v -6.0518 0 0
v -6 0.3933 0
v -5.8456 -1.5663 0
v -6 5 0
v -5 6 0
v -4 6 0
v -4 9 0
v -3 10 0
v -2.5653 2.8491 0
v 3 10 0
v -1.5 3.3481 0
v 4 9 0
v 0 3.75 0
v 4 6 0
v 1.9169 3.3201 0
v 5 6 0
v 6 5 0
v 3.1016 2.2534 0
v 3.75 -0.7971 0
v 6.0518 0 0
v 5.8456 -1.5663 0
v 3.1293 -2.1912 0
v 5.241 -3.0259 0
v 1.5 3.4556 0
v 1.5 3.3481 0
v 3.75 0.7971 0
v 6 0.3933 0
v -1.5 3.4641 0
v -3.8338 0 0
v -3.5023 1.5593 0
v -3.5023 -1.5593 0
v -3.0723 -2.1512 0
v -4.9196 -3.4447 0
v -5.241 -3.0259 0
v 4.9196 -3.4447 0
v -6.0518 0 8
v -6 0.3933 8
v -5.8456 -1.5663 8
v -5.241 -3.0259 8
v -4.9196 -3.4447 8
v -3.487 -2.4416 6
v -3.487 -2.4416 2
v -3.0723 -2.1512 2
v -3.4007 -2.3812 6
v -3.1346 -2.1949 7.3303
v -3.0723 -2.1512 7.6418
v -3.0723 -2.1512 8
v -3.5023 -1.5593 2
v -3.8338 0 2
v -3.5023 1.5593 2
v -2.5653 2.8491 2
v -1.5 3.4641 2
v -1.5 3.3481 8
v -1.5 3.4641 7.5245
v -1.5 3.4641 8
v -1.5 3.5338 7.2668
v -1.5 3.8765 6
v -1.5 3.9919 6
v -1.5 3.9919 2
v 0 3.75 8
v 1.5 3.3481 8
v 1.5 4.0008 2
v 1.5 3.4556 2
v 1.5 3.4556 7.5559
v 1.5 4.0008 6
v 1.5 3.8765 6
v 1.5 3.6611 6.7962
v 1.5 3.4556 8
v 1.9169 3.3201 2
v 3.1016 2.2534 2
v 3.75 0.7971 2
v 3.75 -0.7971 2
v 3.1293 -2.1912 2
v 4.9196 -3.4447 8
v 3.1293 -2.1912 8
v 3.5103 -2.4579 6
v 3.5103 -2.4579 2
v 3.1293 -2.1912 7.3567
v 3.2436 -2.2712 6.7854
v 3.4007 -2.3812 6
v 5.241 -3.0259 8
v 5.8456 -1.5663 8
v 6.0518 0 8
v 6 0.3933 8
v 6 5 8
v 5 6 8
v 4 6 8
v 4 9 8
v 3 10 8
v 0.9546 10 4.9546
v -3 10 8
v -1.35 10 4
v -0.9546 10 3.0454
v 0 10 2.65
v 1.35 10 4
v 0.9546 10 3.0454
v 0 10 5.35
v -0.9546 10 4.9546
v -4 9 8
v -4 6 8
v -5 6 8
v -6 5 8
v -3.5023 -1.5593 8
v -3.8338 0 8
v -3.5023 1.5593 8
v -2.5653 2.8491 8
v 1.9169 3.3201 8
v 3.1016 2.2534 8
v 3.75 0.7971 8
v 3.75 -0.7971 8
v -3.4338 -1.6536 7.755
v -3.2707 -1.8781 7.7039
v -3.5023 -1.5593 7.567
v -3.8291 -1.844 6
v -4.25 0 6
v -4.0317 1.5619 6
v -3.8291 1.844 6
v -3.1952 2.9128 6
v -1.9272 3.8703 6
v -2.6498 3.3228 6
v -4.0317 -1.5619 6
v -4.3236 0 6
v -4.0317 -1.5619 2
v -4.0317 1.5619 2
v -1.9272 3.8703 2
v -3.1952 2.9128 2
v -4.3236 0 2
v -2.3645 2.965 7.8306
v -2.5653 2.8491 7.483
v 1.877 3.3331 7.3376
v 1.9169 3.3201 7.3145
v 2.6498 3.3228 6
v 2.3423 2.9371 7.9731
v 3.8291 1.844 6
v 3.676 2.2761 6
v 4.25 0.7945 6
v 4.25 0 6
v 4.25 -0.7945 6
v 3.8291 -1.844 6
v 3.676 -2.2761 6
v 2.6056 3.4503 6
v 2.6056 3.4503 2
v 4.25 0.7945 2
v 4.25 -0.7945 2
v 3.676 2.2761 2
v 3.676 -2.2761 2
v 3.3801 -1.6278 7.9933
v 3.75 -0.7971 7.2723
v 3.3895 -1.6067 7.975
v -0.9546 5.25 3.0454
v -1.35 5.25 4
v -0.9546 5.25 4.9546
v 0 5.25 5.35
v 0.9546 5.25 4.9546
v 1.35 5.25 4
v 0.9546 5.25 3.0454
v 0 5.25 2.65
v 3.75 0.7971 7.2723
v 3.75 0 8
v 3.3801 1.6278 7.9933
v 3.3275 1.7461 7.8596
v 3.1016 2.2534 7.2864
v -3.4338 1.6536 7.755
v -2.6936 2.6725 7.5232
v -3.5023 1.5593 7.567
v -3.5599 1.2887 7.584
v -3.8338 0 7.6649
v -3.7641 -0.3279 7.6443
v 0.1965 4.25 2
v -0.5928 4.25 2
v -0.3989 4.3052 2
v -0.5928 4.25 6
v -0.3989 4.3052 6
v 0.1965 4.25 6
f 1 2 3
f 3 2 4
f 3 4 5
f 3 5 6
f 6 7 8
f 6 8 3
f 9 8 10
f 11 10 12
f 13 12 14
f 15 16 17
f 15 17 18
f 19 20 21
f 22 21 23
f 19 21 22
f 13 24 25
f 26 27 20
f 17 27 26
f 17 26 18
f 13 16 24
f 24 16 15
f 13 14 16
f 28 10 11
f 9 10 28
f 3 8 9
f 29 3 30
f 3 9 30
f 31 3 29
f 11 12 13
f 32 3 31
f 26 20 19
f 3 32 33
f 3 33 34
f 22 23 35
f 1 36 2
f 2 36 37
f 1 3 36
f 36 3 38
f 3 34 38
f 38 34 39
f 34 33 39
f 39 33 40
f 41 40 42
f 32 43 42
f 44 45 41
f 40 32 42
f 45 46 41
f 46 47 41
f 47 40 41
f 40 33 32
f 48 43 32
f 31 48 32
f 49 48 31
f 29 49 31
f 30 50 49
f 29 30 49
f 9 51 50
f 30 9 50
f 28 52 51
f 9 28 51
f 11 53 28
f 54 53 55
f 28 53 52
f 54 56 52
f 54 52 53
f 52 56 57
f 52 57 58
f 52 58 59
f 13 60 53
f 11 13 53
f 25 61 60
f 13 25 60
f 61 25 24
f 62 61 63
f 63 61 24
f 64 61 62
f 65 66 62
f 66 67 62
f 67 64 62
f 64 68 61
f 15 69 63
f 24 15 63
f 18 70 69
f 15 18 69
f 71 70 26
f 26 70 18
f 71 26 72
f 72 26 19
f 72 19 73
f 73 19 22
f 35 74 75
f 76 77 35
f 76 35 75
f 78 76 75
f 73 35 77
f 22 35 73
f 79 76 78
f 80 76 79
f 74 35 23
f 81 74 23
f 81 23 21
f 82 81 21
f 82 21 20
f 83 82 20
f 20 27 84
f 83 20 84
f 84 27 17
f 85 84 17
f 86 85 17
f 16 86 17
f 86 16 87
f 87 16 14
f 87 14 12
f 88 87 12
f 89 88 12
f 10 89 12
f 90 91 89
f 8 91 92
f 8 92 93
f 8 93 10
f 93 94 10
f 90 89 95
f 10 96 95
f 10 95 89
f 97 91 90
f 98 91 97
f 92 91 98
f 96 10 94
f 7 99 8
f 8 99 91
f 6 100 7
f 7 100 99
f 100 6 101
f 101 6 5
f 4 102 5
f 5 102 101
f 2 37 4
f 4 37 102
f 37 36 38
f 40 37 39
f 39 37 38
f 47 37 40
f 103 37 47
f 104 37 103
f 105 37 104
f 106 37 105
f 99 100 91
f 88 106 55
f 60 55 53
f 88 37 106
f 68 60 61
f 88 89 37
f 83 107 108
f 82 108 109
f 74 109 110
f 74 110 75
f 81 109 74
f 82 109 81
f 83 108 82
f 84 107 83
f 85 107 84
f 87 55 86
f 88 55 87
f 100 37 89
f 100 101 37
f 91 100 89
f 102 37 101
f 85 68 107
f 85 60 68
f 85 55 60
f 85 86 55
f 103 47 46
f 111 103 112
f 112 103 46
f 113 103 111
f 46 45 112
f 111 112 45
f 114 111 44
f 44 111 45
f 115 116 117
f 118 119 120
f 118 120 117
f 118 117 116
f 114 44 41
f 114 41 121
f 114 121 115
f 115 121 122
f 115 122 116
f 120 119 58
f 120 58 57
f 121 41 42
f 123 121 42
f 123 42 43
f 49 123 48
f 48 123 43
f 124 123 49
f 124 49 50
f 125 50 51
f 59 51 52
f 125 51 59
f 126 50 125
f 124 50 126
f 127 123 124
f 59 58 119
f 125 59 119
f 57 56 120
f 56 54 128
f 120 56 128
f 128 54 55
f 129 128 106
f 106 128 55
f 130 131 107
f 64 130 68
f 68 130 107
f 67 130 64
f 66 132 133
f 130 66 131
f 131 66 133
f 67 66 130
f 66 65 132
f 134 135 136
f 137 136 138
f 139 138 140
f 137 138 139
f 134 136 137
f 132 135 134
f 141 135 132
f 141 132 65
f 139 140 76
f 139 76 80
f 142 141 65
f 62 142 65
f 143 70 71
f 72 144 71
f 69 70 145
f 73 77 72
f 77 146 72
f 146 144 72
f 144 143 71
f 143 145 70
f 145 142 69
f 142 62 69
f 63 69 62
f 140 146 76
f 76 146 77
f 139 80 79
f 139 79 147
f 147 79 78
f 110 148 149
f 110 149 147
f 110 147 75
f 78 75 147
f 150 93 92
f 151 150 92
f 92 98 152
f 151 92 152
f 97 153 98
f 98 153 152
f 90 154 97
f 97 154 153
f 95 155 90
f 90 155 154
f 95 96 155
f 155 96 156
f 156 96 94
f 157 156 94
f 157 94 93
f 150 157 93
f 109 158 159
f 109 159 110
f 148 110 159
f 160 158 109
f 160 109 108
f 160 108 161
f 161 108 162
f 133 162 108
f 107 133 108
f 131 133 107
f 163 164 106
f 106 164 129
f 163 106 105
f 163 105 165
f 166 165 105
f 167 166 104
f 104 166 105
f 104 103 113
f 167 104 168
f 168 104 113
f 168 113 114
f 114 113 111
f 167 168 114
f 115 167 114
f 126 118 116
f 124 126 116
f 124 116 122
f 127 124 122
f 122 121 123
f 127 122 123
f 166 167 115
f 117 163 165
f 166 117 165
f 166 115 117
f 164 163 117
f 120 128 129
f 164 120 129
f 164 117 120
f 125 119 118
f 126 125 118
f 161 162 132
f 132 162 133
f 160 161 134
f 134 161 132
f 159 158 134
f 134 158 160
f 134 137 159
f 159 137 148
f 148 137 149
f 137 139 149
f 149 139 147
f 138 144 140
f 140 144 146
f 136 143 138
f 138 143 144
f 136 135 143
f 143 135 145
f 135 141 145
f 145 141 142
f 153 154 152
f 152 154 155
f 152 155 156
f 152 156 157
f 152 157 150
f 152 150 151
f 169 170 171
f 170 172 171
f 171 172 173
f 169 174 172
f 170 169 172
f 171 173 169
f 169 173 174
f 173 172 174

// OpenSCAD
// file: parameters.scad
// Parameters file for RepRap Huxley

pi=3.14159265;

// The relative location in your file system where the .dxf files are
// DXFs are for quick development.  They should be replaced by parameterised CSG in dure course.

fileroot="DXF-files/";

rodsize = 6;	//threaded/smooth rod diameter in mm
xaxis = 182.5;	//width of base in mm
yaxis = 266.5;	//length of base in mm


screwsize = 3;	//bearing bore/screw diameter in mm
bearingsize = 10;	//outer diameter of bearings in mm
bearingwidth = 4;	//width of bearings in mm


rodpitch = rodsize / 6;
rodnutsize = 0.8 * rodsize; //4.8
rodwashersize = 0.2 * rodsize; //1.2
rodwasherdiameter = 2 * rodsize;//12
screwpitch = screwsize / 6;
nutsize = 0.8 * screwsize;
nutdiameter = 1.9 * screwsize;
washersize = 0.2 * screwsize;
washerdiameter = 2 * screwsize;
partthick = 2 * (rodsize+1); //12
vertexrodspace = 2 * rodsize; //12


c = [0.3, 0.3, 0.3];
rodendoffset = rodnutsize + rodwashersize * 2 + partthick / 2;//13.2
vertexoffset = vertexrodspace + rodendoffset;//25.2
//vertexoffset = 22;

renderrodthreads = false;
renderscrewthreads = false;
fn = 36;

// The gap between the joining rods at a vertex

vertex_radius=sqrt(rodsize*rodsize + vertexoffset*vertexoffset);
vertex_ang = atan(vertexoffset/rodsize)-30;
vertex_gap = 2*vertex_radius*cos(vertex_ang);

// Nema 14 dimensions - these are absolute

nema14_square=35.3;
nema14_screws=26;
nema14_screw_r=1.5;
nema14_hub=22;
nema14_hub_depth=2;
nema14_length=36;
nema14_shaft=5;
nema14_shaft_length=66;
nema14_shaft_projection=19;

// Nema 11 dimensions - these are absolute

nema11_square=28.5;
nema11_screws=23;
nema11_screw_r=1.25;
nema11_hub=22;
nema11_hub_depth=2;
nema11_length=44.5;
nema11_shaft=5;
nema11_shaft_length=78;
nema11_shaft_projection=18;

// Limit switch parameters

limit_switch_hole_diameter=2.5;
limit_switch_centres=9.5;

// The RepRap slide bearings

bearing_mount_centres=18;
bearing_width=7;

// X axis parameters - many should be relative

x_bar_gap=30;
motor_center_y = 26;
bar_clamp_x=5;
bar_clamp_y=8;
bar_clamp_x_gap=23;
bearing_y=50;
bearing_x=bar_clamp_x_gap + 10;
hole_land=4;
thickness=5;
bearing_low_z = 8;
bearing_z_gap = 25;
bearing_plate_width = bearing_mount_centres+2*hole_land + 10;
bearing_plate_overlap=0.5;
bearing_plate_support=10;
// file: configuration.scad
// eMAKEr Huxley
// Configuration file
// GNU GPL v2
// Jean-Marc Giacalone
// info@emakershop.com
// www.emakershop.com
// http://www.reprap.org/wiki/EMAKER_Huxley
// http://github.com/prusajr/eMAKERHuxley


//Round corner diameter
round_corner_diameter = 8;

//Thin wall size
layer_height = 0.4;
perimeter_width_over_thicknes = 1.6;
infill_widht_over_thickness = 1.55;
thin_wall = 2*(perimeter_width_over_thicknes*layer_height+infill_widht_over_thickness*layer_height);
if(thin_wall<2){
	echo("Check thin wall size, its below 2mm!");
}
echo(thin_wall);

// MINI-HUXLEY VERSION (TODO, just place holder)
// include <configuration-huxley.scad>
m3_dia_clr=3.5;
m6_diameter = 6;
m6_nut = 11.5;
bushing_diameter = 8;
motor_shaft=5;
bushing_rodsize = 6;
bushing_outerDiameter = 12;
bushing_lenght = 8;

// Some basic functions, probably should be somewhere else
// main file
include<configuration.scad>;
use<library.scad>

bushing_height=8;
socket_width=8;
socket_depth=4;
bushing_width=12;
bushing_rodsize=6.5;
bearing_length=4;
body_chamfers=1;
rod_clearance=1;//dia

side=0;

module ptfe_bushing(a=45,b=0,c=10)
{
//body
difference()
{
	//positive
	union()
	{
		translate([0,socket_depth/2+6,bushing_height/2]) cube([socket_width,socket_depth,bushing_height],center=true);
		translate([0,bushing_width/4,bushing_height/2]) cube([bushing_width,bushing_width/2,bushing_height],center=true);
		//cylinder(h=bushing_height,r=bushing_width/2);
		polyhole(bushing_height,bushing_width);
	}
	//negative
	union()
	{
		//groove
		translate([0,0,(bushing_height-bearing_length)/2])
			//cylinder(h=bushing_height-bearing_length,r=bushing_rodsize/2+2);
			polyhole(bushing_height-bearing_length,bushing_rodsize+2);
		//cylinder(h=bushing_height, r=bushing_rodsize/2+rod_clearance);
		polyhole(bushing_height, bushing_rodsize+rod_clearance);
		//groove chamfer
		translate([0,0,bushing_height-(bushing_height-bearing_length)/2])
			cylinder(h=(bushing_height-bearing_length)/2, r1=bushing_rodsize/2+1, r2=bushing_rodsize/2+rod_clearance/2);
		//opening
		for(i=[1,-1])
		{
			rotate([0,0,i*c-a]) translate([bushing_width*1.5/4,-bushing_width*1.5/4,bushing_height*1.2/2])
				cube([bushing_width*1.5/2,bushing_width*1.5/2,bushing_height*1.2],center=true);
		}
		//body chamfers
		for(j=[0,1])
		{
			mirror([j,0,0]) union()
			{
				translate([bushing_width/2,bushing_width/2,0]) rotate([0,0,45]) cube([body_chamfers*sqrt(2),body_chamfers*sqrt(2),bushing_height*2],center=true);
				translate([socket_width/2,bushing_width/2+socket_depth,0]) rotate([0,0,45]) cube([body_chamfers*sqrt(2),body_chamfers*sqrt(2),bushing_height*2],center=true);
			}
		}
		//screw hole
		translate([0,(bushing_rodsize+rod_clearance)/2+1.5,bushing_height/2]) rotate([-90,0,0])
			cylinder(h=socket_depth*1.6,r=2.7/2, $fn=8);
	}
}
//key
difference()
{
	rotate([0,0,b]) translate([0,(bushing_rodsize+2)/4,bushing_height/2])
		cube([3,(bushing_rodsize+2)/2,bushing_height], center=true);
	cylinder(h=bushing_height, r=bushing_rodsize/2+rod_clearance/2);
}
}//end module ptfe_bushing

if(side==1)
{
	ptfe_bushing(130,-90,0);
}else{
	ptfe_bushing();
}
